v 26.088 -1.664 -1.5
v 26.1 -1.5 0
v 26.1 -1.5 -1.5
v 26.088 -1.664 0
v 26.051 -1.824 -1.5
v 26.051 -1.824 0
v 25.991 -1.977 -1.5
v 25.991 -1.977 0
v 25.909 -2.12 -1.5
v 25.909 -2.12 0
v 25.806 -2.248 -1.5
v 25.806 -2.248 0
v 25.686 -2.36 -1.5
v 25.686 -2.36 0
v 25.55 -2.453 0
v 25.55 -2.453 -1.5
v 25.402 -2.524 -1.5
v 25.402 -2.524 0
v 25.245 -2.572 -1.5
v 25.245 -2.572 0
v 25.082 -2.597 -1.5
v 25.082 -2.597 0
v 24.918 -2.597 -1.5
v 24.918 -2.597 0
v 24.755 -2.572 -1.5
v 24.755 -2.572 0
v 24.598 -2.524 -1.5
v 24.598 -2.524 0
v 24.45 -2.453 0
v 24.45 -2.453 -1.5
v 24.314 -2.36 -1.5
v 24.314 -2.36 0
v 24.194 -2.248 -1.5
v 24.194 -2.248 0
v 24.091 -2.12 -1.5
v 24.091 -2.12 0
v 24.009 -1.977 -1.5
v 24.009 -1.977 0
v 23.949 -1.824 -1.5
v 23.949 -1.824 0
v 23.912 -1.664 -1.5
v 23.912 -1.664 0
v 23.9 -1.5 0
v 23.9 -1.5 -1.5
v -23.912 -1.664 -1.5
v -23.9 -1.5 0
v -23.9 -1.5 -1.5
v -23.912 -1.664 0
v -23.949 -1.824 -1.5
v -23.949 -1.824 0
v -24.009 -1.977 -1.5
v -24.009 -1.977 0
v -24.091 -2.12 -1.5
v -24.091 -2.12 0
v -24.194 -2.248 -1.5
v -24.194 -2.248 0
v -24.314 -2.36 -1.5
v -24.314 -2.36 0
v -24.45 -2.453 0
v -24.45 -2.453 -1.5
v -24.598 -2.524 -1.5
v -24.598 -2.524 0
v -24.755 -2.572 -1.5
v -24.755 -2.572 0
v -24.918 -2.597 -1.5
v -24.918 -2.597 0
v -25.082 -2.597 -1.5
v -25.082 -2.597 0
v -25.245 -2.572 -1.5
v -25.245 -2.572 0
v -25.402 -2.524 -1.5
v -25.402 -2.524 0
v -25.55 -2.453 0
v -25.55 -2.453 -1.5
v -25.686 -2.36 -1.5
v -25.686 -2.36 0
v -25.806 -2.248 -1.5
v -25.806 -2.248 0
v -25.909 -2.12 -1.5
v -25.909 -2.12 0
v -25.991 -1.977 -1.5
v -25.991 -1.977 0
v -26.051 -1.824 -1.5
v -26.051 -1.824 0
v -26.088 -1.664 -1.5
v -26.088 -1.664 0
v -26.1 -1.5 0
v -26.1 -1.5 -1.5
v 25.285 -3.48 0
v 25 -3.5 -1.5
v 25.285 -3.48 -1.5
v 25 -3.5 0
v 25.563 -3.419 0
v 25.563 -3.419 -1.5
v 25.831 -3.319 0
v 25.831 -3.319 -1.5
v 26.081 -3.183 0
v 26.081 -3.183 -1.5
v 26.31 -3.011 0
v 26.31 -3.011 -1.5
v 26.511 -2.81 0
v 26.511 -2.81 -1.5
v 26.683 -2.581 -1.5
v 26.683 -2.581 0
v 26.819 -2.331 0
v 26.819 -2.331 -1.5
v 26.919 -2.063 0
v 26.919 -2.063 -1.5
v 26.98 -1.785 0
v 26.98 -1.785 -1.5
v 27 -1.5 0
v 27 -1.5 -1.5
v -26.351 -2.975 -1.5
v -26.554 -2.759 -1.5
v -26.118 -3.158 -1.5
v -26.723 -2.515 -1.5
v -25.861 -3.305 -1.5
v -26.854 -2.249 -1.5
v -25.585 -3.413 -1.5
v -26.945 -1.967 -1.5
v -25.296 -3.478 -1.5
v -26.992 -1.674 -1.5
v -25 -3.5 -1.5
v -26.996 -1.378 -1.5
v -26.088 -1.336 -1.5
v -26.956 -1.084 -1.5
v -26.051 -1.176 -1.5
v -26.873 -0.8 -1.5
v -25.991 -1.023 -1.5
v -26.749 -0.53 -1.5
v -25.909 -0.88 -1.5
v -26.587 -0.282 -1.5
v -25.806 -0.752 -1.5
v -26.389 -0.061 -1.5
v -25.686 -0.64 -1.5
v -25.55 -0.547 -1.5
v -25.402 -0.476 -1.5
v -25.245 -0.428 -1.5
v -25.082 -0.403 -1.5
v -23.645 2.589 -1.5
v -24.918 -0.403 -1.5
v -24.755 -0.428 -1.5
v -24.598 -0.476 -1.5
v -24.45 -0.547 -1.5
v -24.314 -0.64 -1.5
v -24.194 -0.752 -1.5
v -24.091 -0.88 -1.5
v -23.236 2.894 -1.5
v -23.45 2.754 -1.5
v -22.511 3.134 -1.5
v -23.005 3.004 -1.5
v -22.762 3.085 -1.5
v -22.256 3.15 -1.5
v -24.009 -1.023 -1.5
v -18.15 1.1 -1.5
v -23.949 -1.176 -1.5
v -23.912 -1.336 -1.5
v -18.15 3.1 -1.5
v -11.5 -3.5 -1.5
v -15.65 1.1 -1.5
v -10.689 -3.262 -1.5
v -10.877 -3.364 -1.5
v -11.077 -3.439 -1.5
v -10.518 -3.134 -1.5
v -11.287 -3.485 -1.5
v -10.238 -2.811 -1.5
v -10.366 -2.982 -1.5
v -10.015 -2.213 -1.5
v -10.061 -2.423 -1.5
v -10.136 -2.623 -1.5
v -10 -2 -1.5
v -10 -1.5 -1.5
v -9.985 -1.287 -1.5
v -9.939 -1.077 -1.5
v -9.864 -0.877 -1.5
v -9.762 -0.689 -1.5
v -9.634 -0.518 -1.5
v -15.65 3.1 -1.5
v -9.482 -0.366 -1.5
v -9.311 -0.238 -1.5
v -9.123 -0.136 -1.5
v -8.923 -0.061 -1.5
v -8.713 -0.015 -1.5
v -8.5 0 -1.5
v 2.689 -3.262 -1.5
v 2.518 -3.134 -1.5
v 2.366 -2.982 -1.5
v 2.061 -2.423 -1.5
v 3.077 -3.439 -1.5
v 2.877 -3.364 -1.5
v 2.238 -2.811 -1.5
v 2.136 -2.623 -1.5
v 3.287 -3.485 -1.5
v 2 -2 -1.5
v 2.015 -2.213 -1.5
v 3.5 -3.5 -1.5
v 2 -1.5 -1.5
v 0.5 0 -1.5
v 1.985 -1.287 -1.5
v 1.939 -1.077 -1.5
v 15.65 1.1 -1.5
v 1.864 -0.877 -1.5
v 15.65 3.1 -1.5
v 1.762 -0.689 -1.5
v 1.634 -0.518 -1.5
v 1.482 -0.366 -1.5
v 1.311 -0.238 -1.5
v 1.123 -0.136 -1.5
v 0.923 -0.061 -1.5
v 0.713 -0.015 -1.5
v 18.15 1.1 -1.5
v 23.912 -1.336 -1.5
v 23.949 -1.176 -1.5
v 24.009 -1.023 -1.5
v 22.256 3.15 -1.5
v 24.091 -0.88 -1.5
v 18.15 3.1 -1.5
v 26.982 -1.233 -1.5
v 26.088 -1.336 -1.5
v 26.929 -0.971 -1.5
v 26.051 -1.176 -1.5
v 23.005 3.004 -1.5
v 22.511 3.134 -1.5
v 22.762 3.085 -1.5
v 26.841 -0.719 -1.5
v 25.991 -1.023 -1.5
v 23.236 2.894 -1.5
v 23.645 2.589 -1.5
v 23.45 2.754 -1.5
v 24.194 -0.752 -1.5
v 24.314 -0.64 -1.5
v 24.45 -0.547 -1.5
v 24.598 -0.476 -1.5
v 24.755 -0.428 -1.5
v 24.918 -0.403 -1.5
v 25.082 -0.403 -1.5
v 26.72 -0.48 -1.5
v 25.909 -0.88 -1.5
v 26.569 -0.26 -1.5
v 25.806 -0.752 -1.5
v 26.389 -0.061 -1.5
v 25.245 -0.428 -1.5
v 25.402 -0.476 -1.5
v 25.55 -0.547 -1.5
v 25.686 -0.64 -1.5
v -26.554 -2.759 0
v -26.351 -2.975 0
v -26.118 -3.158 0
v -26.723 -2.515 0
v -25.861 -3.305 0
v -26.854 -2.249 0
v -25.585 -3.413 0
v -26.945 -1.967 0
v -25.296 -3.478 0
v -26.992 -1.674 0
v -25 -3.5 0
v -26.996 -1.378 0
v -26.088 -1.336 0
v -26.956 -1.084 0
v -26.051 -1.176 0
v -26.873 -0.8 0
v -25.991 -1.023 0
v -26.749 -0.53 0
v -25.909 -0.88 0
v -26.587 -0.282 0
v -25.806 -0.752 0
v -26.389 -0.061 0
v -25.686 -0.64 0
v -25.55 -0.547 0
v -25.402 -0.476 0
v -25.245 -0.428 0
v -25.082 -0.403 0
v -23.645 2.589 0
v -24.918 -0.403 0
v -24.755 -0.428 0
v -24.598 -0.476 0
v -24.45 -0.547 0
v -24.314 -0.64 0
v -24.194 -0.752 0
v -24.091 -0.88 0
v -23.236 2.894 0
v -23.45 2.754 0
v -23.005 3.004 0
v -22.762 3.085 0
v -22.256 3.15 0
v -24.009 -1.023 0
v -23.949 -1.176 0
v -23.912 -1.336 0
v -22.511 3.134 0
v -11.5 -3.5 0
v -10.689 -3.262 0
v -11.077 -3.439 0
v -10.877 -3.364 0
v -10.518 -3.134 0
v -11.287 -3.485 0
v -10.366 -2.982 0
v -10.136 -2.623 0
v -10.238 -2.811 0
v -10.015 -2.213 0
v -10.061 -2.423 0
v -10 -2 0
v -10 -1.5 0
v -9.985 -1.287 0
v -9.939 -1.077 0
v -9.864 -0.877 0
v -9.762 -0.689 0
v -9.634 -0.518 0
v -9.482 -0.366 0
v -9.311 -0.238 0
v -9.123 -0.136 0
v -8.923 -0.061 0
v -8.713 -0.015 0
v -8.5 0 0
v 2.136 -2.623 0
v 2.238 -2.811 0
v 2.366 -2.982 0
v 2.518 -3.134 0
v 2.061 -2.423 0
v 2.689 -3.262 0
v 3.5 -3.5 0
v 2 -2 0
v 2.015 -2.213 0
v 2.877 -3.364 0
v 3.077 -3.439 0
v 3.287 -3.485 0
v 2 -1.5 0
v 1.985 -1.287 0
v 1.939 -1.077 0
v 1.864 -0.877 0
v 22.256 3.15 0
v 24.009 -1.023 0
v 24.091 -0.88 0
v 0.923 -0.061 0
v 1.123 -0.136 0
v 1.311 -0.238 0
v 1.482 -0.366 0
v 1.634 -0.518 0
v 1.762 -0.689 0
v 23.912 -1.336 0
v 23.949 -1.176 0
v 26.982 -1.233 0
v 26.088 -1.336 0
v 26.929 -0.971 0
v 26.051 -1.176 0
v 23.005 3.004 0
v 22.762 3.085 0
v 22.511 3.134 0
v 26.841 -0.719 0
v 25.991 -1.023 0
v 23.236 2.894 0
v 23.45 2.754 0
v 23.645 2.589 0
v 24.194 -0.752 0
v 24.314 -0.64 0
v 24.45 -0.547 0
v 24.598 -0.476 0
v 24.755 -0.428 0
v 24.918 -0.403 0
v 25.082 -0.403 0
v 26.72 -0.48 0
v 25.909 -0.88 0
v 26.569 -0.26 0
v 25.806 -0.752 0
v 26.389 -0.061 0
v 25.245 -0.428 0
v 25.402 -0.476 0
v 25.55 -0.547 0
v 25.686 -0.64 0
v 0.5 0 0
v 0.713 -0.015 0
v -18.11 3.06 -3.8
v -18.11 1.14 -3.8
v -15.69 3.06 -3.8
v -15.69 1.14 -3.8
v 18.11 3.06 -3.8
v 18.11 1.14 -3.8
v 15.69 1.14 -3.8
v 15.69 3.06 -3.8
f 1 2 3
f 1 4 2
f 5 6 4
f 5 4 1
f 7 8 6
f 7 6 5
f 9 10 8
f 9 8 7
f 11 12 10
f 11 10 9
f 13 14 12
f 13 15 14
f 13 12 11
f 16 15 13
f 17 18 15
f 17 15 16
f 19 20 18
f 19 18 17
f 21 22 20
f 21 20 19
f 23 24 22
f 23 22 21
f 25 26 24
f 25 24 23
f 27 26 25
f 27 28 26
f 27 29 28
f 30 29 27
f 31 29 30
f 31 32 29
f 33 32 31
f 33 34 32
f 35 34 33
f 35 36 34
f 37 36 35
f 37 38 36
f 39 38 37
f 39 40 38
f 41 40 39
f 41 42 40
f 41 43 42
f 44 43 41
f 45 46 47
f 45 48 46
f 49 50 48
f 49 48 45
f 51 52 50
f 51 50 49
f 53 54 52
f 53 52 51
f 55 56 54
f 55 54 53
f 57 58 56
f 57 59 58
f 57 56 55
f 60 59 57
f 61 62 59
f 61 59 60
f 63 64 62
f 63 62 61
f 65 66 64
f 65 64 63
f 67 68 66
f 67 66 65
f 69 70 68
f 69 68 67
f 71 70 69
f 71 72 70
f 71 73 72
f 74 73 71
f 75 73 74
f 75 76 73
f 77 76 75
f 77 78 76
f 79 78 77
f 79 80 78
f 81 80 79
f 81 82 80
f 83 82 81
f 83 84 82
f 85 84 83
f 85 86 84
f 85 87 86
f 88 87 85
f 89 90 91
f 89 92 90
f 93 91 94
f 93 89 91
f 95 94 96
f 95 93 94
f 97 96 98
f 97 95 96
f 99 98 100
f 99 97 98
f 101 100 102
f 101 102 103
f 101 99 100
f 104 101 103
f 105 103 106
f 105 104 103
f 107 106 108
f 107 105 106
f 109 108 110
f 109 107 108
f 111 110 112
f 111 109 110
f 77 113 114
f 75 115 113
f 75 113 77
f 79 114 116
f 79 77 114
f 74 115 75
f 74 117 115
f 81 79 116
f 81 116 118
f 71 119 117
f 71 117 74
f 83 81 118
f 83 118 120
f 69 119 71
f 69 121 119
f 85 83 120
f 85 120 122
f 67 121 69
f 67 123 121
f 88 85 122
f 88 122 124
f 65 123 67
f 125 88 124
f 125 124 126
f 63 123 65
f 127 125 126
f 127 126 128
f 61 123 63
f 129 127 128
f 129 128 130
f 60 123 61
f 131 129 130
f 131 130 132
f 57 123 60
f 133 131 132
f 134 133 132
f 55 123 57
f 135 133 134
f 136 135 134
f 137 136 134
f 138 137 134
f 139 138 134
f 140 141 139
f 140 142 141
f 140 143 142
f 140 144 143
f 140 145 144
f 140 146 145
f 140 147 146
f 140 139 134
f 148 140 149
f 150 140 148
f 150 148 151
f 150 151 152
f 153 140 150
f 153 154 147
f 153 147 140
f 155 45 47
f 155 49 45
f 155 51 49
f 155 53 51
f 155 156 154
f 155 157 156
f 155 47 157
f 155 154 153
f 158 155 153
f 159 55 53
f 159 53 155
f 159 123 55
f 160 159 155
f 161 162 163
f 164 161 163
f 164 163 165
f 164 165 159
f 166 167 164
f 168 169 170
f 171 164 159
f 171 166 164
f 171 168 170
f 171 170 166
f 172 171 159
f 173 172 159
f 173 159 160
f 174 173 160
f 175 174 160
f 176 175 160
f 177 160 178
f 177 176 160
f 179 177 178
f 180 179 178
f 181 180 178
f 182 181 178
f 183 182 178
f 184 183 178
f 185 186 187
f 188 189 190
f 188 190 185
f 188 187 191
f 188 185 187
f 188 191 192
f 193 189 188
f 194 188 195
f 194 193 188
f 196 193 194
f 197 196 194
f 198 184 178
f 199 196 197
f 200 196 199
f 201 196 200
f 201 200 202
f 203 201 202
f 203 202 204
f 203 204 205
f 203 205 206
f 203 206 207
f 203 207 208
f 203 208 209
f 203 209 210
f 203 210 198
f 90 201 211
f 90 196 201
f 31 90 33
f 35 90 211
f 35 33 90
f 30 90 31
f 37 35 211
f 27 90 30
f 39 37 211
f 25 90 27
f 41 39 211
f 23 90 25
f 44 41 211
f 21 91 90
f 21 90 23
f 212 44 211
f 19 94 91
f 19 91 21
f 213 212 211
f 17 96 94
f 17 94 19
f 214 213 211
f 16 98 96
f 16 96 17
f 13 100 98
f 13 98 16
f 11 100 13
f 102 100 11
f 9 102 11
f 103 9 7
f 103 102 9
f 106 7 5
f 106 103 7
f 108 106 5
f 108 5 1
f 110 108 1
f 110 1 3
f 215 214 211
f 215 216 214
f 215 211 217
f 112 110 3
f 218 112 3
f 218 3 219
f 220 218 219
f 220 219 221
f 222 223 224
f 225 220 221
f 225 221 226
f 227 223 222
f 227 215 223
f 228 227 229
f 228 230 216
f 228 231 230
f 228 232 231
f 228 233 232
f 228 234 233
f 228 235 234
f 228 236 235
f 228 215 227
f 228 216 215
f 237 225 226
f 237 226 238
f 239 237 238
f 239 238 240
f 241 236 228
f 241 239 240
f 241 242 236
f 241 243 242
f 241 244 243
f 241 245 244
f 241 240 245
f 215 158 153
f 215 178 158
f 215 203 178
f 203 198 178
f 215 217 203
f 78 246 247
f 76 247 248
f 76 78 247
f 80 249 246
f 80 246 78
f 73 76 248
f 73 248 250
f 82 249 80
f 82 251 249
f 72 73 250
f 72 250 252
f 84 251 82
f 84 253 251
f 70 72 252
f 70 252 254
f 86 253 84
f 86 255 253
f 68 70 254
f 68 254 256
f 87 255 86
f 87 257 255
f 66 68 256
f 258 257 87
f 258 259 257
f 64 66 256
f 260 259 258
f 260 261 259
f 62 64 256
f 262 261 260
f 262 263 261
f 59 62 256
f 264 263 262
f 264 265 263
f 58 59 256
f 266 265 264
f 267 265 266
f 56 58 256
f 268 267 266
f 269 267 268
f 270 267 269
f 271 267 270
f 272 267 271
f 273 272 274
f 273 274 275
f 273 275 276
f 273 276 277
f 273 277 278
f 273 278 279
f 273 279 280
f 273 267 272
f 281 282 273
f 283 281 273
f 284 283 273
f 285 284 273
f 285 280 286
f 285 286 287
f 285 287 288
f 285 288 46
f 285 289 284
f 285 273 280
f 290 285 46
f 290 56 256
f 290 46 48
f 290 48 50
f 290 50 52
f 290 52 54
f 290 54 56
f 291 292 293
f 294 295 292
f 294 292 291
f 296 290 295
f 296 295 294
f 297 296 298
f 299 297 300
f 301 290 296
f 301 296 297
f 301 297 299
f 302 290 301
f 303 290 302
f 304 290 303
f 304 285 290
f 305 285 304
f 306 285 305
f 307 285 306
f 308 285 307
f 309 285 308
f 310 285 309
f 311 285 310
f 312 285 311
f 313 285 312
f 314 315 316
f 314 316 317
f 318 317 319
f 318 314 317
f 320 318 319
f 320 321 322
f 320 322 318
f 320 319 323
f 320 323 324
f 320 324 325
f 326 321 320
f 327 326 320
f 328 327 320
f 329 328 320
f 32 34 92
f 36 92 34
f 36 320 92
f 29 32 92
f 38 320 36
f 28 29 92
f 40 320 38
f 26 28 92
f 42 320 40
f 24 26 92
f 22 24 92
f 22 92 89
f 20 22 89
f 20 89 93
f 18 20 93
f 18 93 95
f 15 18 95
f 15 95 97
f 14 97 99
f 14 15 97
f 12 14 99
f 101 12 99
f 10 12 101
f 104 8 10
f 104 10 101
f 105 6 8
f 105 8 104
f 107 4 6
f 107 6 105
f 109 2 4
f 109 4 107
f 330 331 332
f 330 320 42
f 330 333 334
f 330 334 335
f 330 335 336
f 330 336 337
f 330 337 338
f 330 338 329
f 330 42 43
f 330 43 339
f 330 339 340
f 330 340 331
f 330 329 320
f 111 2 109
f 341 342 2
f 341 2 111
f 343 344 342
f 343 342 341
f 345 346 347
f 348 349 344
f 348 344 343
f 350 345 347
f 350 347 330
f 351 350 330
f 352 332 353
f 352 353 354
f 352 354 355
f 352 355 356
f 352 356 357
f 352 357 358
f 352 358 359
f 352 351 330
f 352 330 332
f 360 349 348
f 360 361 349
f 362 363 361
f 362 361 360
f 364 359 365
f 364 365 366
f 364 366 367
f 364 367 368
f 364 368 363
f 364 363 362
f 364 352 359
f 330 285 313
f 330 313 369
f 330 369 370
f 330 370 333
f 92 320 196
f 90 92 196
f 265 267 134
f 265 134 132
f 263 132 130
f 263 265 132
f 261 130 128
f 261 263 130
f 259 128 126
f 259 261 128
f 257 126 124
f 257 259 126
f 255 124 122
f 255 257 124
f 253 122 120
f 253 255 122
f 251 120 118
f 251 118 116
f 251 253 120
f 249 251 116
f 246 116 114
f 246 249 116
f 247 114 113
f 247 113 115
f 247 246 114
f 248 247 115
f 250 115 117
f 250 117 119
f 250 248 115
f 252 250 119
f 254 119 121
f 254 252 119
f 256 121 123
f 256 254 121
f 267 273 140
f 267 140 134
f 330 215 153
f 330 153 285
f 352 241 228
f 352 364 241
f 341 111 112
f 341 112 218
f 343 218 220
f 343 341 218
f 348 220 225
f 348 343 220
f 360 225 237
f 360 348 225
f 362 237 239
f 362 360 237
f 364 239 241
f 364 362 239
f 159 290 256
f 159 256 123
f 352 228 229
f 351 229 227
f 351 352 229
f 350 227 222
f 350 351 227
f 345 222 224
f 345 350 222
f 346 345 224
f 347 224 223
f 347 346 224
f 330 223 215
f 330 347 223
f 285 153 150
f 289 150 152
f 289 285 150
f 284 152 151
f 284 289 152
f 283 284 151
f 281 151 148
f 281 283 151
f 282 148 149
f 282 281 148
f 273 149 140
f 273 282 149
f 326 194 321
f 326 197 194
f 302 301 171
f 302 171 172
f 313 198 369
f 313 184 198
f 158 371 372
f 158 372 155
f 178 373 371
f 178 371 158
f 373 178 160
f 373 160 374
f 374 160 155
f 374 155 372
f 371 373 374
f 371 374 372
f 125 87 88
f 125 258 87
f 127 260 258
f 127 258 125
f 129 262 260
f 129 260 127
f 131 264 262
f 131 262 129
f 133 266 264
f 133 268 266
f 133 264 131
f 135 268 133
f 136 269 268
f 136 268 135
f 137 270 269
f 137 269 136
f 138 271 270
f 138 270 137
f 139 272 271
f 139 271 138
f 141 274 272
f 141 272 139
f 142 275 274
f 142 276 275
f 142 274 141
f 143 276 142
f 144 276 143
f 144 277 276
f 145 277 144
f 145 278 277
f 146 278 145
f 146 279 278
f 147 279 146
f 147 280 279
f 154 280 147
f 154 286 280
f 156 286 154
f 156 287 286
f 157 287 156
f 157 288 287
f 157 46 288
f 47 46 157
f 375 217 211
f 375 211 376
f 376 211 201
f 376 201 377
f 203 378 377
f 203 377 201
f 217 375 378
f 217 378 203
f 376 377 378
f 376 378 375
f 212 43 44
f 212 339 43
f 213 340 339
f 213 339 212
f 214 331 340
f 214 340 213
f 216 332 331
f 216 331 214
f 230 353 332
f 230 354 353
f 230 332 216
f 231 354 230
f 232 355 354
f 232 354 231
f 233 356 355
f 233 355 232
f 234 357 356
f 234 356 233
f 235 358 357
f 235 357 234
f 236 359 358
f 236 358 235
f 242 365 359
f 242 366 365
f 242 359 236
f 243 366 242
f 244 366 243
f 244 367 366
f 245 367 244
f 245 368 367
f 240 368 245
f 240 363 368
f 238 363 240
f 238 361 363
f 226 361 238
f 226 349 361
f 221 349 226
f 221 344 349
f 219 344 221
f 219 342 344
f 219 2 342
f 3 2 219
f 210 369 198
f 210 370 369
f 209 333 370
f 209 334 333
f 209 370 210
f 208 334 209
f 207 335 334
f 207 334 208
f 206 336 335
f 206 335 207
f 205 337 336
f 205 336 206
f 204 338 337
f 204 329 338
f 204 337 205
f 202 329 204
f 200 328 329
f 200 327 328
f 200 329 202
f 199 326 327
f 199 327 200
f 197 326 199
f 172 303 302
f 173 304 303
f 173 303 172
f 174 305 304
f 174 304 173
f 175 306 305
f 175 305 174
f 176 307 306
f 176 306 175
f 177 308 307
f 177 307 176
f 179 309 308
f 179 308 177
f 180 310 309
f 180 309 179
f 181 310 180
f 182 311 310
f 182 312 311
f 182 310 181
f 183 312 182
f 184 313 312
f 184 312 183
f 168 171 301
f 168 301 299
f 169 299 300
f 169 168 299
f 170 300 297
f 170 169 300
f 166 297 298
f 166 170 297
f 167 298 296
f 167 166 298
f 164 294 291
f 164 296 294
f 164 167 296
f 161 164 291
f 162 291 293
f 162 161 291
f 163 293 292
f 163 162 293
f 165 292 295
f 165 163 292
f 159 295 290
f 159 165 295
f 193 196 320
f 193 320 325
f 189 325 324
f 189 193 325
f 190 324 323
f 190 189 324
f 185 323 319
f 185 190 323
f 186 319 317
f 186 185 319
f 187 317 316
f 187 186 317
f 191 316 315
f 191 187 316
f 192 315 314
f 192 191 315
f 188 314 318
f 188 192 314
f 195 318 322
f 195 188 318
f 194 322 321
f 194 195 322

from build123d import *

# Parameters (mm, degrees)
EXTRUDE_1_DEPTH     = 1.5
FILLET_1_R          = 2
SKETCH_2_W          = 12
SKETCH_2_H          = 3.5
CUT_EXTRUDE_1_DEPTH = 1.5
SKETCH_3_W          = 2.5
SKETCH_3_H          = 2
EXTRUDE_2_DEPTH     = 2.3
EXTRUDE_2_TAPER     = 1
HOLE_WIZARD_M2_1_D  = 2.2
FILLET_2_R          = 1.5


with BuildPart() as part:
    # 草图1 → 凸台-拉伸1 (new body)
    with BuildSketch(Plane.XY):
        with BuildLine():
            Line((-25, -3.5), (25, -3.5))
            ThreePointArc((25, -3.5), (26.854367709, -2.249213187), (26.389316741, -0.061320399))
            Line((26.389316741, -0.061320399), (23.06389712, 3.15))
            Line((23.06389712, 3.15), (-23.06389712, 3.15))
            Line((-23.06389712, 3.15), (-26.389316741, -0.061320399))
            ThreePointArc((-26.389316741, -0.061320399), (-26.854367709, -2.249213187), (-25, -3.5))
        make_face()
    extrude(amount=-EXTRUDE_1_DEPTH)

    # 圆角1
    fillet_1_edges = [part.edges().sort_by_distance(p)[0] for p in [
        (-23.06389712, 3.15, -0.75),
        (23.06389712, 3.15, -0.75),
    ]]
    fillet(fillet_1_edges, radius=FILLET_1_R)

    # 草图2 → 切除-拉伸1 (cut)
    with BuildSketch(Plane.XY):
        with Locations((-4, -1.75)):
            Rectangle(SKETCH_2_W, SKETCH_2_H)
    extrude(amount=-CUT_EXTRUDE_1_DEPTH, mode=Mode.SUBTRACT)

    # 草图3 → 凸台-拉伸2 (add)
    with BuildSketch(Plane(origin=(0, 0, -1.5), x_dir=(-1, 0, 0), z_dir=(0, 0, -1))):
        with Locations((16.9, 2.1)):
            Rectangle(SKETCH_3_W, SKETCH_3_H)
    extrude_2 = extrude(amount=EXTRUDE_2_DEPTH, taper=EXTRUDE_2_TAPER)

    # M2 间隙孔1 (through all)
    with Locations(Plane(origin=(0, 0, -1.5), x_dir=(-1, 0, 0), z_dir=(0, 0, -1))):
        with Locations((25, -1.5)):
            hole_wizard_m2_1 = Hole(HOLE_WIZARD_M2_1_D / 2)

    # 镜向1: 凸台-拉伸2, M2 间隙孔1 across plane
    add(extrude_2.mirror(Plane(origin=(0, 0, 0), x_dir=(0, 0, 1), z_dir=(1, 0, 0))))
    add(hole_wizard_m2_1.mirror(Plane(origin=(0, 0, 0), x_dir=(0, 0, 1), z_dir=(1, 0, 0))), mode=Mode.SUBTRACT)

    # 圆角2
    fillet_2_edges = [part.edges().sort_by_distance(p)[0] for p in [
        (2, 0, -0.75),
        (2, -3.5, -0.75),
        (-10, -3.5, -0.75),
        (-10, 0, -0.75),
    ]]
    fillet(fillet_2_edges, radius=FILLET_2_R)


solid = part.part
